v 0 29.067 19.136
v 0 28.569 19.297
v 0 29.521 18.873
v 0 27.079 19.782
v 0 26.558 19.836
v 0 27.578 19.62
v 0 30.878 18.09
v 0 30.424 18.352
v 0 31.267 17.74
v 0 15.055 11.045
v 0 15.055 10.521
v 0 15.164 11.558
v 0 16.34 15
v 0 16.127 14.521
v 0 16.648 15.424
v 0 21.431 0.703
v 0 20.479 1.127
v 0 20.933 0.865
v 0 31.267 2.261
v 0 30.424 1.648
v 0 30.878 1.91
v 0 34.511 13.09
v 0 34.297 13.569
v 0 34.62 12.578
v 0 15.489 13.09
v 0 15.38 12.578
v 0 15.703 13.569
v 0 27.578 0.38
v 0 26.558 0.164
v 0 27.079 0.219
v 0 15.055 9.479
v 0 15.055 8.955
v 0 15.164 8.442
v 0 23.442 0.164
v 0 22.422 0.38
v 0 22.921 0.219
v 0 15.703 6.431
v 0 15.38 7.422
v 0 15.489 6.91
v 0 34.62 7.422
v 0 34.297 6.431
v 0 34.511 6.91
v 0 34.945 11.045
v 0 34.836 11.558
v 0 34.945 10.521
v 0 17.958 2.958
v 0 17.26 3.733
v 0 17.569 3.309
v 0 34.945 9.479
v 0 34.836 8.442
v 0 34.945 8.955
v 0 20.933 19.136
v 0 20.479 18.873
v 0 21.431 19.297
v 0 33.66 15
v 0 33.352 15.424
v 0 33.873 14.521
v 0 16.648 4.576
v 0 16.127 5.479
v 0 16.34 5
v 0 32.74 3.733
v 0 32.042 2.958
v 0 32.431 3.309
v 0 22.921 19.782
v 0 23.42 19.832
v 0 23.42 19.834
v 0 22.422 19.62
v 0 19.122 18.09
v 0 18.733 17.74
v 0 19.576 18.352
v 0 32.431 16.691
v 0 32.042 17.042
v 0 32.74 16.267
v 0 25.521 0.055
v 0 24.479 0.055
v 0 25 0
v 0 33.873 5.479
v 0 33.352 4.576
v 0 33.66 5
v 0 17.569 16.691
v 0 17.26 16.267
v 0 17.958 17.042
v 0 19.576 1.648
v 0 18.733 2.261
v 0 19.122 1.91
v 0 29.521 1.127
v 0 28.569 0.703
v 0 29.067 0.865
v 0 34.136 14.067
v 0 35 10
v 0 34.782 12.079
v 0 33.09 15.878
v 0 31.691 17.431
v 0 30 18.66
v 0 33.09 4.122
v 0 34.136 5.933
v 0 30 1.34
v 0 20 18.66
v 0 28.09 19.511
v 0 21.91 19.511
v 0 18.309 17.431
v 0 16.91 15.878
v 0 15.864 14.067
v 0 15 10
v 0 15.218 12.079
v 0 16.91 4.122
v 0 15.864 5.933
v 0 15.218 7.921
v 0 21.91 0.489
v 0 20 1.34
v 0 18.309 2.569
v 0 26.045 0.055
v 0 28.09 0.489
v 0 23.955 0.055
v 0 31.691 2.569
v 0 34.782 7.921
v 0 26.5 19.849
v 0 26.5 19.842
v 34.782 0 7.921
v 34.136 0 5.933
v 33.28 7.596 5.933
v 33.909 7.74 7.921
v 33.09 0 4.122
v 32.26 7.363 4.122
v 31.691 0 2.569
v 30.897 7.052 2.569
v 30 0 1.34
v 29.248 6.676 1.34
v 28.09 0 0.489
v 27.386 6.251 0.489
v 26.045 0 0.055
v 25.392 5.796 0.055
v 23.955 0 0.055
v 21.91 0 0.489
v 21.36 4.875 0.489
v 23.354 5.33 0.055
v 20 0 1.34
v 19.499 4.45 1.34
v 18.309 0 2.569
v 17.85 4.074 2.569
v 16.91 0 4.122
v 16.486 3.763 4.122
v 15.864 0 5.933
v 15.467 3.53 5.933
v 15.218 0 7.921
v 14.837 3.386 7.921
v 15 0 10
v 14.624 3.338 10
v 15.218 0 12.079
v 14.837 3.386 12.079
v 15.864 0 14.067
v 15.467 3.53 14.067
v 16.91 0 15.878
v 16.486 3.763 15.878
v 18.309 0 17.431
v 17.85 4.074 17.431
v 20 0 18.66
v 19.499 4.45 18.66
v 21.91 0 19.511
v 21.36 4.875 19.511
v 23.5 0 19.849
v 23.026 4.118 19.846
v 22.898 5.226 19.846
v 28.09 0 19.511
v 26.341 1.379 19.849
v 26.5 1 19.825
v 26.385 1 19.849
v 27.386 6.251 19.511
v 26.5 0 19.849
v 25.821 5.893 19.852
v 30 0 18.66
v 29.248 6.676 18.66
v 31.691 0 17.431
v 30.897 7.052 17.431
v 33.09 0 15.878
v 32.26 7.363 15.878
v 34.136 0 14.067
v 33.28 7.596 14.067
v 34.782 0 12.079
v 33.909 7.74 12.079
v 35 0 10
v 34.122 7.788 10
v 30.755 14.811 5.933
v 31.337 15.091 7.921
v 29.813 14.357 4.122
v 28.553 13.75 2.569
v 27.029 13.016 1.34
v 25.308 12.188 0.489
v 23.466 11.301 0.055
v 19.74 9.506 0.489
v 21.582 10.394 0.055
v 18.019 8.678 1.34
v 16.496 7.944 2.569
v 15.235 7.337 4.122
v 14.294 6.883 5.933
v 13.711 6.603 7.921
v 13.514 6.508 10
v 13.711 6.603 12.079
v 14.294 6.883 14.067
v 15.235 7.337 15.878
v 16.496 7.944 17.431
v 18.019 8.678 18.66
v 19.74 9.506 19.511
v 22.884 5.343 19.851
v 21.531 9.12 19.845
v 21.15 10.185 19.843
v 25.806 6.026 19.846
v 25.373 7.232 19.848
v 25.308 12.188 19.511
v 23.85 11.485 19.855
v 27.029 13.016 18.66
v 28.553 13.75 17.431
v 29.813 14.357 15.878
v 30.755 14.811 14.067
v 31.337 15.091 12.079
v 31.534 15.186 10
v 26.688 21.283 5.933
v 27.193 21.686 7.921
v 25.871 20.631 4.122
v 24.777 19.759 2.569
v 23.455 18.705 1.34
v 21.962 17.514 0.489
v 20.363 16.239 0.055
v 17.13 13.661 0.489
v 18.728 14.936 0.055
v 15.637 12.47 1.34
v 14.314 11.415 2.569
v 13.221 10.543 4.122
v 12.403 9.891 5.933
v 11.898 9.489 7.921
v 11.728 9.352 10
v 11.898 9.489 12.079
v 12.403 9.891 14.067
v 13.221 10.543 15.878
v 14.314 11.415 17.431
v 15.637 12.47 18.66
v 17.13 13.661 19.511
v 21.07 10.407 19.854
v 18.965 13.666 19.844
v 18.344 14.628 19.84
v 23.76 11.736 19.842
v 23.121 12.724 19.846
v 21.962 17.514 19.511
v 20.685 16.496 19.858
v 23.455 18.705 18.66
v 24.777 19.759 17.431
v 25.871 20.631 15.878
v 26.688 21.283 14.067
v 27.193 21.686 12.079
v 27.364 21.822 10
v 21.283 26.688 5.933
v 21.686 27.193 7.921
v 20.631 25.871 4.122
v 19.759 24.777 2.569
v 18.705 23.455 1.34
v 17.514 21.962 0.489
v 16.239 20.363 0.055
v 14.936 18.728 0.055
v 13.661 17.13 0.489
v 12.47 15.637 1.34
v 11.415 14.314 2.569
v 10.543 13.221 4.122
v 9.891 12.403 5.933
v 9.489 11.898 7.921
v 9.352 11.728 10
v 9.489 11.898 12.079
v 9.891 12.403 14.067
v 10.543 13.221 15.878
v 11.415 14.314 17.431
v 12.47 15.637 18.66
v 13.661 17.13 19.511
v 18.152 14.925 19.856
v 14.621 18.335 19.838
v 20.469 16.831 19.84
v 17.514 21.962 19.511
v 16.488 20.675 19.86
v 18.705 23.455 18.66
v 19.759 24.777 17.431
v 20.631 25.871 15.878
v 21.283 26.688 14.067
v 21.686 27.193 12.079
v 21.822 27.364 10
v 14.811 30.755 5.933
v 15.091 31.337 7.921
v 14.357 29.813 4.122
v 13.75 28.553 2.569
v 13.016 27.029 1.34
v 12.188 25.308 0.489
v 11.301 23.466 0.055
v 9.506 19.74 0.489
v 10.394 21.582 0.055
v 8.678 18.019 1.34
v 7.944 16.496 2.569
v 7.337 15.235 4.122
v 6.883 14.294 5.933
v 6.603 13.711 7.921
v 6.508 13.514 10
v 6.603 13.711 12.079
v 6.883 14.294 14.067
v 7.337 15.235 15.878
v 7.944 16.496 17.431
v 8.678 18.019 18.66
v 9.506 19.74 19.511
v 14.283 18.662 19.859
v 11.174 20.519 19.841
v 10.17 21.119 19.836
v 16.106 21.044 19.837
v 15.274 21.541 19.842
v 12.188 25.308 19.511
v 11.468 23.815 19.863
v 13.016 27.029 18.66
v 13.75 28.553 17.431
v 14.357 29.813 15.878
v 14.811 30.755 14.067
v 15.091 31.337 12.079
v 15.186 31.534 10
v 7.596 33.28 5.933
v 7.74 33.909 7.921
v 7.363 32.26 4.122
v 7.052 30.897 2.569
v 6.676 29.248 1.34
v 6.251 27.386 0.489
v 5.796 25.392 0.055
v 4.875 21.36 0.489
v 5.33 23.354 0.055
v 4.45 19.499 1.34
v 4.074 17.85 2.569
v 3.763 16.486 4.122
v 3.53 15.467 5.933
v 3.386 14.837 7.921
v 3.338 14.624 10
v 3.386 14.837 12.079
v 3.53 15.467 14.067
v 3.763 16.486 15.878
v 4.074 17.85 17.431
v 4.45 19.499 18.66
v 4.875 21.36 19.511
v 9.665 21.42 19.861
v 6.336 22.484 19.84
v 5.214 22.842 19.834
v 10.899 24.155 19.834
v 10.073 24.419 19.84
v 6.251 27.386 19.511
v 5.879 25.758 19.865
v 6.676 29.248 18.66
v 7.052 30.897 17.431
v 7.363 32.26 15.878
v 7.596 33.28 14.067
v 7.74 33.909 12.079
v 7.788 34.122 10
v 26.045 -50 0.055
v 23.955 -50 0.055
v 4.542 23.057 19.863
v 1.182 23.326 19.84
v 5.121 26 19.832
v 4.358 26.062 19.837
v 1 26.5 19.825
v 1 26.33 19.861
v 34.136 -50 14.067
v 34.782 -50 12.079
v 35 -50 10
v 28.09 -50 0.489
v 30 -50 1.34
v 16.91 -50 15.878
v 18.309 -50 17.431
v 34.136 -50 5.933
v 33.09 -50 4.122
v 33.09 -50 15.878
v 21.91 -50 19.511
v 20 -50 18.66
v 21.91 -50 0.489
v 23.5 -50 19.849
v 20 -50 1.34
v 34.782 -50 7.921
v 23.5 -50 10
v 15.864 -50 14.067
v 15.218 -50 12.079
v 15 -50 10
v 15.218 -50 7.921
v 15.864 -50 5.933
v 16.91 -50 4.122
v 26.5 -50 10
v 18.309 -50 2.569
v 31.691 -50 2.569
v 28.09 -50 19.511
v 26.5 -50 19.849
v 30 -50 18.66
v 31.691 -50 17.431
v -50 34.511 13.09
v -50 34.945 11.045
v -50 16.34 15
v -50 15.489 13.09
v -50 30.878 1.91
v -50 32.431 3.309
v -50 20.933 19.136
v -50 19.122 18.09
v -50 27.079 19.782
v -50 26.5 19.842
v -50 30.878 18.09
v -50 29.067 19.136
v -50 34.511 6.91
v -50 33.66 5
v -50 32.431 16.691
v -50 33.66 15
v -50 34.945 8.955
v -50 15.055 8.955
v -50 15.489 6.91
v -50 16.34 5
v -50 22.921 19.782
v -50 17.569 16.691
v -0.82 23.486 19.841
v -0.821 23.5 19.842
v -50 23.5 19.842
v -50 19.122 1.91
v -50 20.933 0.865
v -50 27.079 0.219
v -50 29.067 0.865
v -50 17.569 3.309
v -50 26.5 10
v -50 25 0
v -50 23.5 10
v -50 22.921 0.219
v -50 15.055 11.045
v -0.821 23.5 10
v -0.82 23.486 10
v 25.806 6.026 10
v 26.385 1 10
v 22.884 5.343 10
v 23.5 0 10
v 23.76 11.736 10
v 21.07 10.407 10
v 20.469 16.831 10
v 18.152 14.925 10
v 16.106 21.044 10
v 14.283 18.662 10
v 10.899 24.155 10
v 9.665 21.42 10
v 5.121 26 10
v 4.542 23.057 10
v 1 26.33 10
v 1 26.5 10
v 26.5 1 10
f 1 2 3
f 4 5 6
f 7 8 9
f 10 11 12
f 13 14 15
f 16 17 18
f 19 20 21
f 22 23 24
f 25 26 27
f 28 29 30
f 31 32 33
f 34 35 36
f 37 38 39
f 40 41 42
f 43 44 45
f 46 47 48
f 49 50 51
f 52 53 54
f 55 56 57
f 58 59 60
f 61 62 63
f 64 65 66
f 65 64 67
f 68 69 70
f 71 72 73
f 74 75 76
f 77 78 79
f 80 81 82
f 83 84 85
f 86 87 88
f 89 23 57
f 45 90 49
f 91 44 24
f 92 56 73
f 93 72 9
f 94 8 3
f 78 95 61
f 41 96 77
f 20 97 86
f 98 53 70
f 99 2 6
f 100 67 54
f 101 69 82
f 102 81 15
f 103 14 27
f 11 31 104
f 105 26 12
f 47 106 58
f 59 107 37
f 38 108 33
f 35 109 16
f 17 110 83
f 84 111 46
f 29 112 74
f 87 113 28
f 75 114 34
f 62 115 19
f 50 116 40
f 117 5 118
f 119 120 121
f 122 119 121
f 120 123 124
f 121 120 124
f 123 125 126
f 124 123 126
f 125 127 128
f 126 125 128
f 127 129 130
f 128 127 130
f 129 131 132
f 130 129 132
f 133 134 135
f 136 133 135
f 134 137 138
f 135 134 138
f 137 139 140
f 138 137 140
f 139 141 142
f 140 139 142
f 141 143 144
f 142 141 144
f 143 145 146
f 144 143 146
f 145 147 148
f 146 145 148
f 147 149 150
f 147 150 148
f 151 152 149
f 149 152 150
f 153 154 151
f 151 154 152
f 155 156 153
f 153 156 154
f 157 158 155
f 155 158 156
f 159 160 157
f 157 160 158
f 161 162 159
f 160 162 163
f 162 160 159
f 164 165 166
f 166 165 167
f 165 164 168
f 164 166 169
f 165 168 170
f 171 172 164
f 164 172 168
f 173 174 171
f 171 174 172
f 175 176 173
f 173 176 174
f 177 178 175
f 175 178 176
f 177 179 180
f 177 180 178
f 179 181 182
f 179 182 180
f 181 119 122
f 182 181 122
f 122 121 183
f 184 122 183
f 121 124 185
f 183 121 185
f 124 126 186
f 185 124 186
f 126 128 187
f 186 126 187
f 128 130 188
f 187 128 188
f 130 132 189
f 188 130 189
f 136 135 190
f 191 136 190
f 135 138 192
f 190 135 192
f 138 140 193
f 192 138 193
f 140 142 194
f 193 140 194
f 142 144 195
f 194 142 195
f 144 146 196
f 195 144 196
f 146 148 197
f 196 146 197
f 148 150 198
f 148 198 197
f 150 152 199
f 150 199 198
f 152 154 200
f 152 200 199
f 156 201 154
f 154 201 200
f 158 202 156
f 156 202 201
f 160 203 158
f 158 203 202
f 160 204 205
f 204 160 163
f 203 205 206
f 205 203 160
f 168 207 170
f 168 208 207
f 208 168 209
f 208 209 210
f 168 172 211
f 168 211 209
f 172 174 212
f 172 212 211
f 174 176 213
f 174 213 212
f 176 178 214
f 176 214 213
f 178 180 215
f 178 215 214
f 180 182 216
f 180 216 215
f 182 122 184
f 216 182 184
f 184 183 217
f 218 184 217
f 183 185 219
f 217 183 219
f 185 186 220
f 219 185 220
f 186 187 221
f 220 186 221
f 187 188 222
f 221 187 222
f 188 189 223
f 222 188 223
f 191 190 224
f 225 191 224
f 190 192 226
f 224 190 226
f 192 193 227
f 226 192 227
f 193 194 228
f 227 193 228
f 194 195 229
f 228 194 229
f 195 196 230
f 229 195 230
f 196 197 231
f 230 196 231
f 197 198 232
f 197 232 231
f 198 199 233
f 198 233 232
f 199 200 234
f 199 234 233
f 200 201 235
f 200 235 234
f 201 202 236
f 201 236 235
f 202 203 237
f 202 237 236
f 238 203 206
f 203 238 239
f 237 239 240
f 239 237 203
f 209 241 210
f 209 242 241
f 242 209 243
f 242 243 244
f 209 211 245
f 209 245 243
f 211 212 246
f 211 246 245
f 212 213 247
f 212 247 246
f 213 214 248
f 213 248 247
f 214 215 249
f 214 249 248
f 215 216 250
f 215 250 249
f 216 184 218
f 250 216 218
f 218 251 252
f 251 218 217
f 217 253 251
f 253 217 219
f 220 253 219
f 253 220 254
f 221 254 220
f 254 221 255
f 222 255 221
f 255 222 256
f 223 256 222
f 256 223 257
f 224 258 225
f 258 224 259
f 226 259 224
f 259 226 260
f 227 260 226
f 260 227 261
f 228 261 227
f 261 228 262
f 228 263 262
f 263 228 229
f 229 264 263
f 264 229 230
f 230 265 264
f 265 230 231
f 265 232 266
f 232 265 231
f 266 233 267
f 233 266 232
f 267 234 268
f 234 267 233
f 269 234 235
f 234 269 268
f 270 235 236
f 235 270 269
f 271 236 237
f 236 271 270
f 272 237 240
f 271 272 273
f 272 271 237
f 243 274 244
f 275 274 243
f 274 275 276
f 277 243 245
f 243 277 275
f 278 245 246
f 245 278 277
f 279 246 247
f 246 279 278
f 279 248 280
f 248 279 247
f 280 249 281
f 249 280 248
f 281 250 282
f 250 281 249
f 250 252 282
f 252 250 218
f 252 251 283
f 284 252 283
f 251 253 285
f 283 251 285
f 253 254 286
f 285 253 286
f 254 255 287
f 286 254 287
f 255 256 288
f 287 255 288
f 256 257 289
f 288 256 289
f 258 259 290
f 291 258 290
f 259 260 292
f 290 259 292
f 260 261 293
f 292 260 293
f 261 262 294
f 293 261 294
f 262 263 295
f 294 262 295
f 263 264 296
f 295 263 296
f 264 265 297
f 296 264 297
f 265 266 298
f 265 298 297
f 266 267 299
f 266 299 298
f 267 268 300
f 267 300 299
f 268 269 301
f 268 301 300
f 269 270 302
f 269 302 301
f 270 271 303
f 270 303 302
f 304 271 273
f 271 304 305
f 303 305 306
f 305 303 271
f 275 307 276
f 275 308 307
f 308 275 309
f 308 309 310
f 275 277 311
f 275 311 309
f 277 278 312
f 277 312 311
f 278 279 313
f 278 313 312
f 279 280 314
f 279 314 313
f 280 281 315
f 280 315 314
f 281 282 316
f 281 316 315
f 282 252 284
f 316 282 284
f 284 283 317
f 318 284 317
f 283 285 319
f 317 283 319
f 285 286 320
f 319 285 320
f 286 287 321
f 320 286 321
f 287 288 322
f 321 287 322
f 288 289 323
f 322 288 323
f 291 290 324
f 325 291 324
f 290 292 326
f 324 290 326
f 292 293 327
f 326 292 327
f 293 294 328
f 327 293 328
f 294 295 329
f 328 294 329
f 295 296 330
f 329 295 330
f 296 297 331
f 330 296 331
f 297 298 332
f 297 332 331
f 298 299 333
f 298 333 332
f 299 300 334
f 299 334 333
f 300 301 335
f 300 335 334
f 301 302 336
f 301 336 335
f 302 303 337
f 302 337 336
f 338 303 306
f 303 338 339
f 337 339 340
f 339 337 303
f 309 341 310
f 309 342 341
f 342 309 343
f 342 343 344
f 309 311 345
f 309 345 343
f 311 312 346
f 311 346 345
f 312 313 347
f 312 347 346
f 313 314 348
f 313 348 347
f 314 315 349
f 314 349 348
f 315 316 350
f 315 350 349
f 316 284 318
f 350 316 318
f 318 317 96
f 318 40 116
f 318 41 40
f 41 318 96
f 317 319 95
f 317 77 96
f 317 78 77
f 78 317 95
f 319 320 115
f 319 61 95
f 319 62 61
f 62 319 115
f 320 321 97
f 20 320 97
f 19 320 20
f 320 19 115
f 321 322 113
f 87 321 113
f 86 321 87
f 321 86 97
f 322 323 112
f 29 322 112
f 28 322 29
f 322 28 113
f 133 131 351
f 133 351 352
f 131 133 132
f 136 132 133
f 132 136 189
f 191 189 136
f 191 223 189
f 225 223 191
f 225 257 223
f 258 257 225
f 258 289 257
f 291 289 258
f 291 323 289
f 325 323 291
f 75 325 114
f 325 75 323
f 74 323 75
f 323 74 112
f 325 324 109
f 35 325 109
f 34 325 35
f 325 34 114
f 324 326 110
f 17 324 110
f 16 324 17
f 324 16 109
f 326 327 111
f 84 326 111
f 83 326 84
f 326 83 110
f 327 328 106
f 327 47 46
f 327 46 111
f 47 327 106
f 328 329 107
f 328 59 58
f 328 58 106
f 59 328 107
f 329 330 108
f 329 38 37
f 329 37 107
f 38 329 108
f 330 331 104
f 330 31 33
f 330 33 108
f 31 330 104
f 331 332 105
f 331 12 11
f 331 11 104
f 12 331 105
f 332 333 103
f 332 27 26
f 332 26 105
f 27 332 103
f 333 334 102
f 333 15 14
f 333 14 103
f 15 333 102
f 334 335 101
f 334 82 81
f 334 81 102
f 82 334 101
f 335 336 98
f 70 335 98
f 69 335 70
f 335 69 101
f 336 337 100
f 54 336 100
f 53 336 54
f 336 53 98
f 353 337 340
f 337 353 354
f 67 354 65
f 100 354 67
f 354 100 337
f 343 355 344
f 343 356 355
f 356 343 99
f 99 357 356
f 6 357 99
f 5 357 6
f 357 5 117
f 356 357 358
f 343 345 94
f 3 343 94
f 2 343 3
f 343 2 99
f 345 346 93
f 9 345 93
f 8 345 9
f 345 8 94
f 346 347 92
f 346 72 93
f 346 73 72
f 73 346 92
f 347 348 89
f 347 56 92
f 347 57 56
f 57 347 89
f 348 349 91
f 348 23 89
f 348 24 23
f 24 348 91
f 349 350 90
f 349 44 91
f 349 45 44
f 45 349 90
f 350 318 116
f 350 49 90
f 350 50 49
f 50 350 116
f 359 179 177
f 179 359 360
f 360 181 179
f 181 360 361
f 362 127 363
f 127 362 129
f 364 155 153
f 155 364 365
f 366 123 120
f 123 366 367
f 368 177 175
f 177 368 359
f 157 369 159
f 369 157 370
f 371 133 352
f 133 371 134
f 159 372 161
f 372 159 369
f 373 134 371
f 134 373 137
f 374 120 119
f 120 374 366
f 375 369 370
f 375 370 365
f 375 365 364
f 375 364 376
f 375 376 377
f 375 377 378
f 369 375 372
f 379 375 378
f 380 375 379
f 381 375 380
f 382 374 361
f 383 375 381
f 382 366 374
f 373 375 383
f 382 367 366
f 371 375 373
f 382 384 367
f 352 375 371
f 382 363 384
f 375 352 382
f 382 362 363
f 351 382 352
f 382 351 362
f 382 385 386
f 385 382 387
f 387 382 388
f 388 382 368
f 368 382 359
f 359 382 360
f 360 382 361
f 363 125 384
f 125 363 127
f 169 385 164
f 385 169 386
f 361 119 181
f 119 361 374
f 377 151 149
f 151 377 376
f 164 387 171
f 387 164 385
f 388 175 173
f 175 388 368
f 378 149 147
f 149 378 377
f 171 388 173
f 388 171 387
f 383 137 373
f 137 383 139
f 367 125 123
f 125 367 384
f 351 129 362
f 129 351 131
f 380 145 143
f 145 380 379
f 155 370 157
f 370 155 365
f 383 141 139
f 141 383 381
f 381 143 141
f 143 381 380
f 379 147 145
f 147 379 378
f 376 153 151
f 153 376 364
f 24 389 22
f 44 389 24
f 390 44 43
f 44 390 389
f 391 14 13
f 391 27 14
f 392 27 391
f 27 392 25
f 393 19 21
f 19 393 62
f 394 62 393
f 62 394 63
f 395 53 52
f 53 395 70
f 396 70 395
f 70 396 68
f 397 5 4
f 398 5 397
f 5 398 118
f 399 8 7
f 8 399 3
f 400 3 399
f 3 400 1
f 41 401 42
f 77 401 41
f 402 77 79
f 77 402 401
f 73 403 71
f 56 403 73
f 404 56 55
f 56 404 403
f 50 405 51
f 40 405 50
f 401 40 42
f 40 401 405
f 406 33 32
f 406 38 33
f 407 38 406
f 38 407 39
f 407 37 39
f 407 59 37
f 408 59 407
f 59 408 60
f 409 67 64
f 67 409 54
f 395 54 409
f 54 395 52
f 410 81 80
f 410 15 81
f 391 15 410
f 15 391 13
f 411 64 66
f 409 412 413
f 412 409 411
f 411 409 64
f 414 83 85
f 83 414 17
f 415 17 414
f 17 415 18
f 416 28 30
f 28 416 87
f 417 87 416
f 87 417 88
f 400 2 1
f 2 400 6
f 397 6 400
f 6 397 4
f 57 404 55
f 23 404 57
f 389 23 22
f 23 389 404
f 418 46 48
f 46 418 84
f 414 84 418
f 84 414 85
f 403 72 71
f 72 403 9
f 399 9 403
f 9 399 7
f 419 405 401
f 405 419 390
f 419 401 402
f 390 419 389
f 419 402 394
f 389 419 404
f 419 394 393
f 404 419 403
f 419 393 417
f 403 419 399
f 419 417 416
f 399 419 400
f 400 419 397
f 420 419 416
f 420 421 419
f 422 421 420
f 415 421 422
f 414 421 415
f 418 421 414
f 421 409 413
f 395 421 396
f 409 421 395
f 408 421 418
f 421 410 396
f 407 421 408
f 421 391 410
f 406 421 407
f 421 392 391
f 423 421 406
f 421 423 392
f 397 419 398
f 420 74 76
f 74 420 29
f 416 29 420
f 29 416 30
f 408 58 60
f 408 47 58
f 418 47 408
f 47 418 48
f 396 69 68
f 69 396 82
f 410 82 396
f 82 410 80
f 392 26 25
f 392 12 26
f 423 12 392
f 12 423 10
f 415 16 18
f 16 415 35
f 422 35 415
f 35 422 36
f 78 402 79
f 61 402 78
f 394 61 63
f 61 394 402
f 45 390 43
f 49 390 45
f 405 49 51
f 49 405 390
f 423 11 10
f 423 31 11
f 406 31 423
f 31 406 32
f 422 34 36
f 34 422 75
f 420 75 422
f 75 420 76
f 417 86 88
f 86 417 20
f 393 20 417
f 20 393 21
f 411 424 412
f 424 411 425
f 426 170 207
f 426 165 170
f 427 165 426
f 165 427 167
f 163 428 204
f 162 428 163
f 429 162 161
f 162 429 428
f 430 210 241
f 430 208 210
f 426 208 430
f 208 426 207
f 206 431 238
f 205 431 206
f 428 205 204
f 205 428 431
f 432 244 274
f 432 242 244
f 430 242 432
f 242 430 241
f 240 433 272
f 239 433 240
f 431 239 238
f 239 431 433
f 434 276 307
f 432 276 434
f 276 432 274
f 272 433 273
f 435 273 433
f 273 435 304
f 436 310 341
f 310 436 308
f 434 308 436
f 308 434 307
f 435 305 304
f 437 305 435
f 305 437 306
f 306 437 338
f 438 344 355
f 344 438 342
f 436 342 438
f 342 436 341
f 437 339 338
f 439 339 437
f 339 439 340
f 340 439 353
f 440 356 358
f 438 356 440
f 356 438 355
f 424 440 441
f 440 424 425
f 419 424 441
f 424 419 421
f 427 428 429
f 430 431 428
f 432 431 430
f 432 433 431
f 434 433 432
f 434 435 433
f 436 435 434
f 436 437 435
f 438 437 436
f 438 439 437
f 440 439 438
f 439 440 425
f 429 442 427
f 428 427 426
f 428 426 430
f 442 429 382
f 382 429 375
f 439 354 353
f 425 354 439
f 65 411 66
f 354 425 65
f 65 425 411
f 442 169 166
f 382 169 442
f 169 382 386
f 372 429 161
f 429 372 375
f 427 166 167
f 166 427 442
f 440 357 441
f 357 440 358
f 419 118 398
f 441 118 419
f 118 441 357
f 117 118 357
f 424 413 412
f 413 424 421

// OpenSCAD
// IKEA HALLBAR bin corner (measured)
corner_r = 35;   // bin outer corner radius (confirmed fit)
bar_r    = 10;   // bar cross-section radius (20 mm diameter)
slot_w   = 3;    // knock slot width
slot_d   = 10;   // knock slot depth (min half bar diameter = 10)
arm_l    = 50;   // straight arm length (5 cm)
path_r = corner_r - bar_r;

difference() {
    union() {
        // Seamless quarter-torus — curved corner section
        rotate_extrude(angle = 90)
            translate([path_r, bar_r])
                circle(r = bar_r);

        // Arm at 0° end — extends in -Y direction (away from curve)
        translate([path_r, 0, bar_r])
            rotate([90, 0, 0])
                cylinder(r = bar_r, h = arm_l);

        // Arm at 90° end — extends in -X direction (away from curve)
        translate([0, path_r, bar_r])
            rotate([0, -90, 0])
                cylinder(r = bar_r, h = arm_l);
    }

    // Knock slot — curved section
    rotate_extrude(angle = 92)
        translate([path_r - slot_w / 2, 2 * bar_r - slot_d])
            square([slot_w, slot_d + 1]);

    // Knock slot — arm at 0° end (runs in -Y direction)
    translate([path_r - slot_w / 2, -arm_l, 2 * bar_r - slot_d])
        cube([slot_w, arm_l + 1, slot_d + 1]);

    // Knock slot — arm at 90° end (runs in -X direction)
    translate([-arm_l, path_r - slot_w / 2, 2 * bar_r - slot_d])
        cube([arm_l + 1, slot_w, slot_d + 1]);
}
